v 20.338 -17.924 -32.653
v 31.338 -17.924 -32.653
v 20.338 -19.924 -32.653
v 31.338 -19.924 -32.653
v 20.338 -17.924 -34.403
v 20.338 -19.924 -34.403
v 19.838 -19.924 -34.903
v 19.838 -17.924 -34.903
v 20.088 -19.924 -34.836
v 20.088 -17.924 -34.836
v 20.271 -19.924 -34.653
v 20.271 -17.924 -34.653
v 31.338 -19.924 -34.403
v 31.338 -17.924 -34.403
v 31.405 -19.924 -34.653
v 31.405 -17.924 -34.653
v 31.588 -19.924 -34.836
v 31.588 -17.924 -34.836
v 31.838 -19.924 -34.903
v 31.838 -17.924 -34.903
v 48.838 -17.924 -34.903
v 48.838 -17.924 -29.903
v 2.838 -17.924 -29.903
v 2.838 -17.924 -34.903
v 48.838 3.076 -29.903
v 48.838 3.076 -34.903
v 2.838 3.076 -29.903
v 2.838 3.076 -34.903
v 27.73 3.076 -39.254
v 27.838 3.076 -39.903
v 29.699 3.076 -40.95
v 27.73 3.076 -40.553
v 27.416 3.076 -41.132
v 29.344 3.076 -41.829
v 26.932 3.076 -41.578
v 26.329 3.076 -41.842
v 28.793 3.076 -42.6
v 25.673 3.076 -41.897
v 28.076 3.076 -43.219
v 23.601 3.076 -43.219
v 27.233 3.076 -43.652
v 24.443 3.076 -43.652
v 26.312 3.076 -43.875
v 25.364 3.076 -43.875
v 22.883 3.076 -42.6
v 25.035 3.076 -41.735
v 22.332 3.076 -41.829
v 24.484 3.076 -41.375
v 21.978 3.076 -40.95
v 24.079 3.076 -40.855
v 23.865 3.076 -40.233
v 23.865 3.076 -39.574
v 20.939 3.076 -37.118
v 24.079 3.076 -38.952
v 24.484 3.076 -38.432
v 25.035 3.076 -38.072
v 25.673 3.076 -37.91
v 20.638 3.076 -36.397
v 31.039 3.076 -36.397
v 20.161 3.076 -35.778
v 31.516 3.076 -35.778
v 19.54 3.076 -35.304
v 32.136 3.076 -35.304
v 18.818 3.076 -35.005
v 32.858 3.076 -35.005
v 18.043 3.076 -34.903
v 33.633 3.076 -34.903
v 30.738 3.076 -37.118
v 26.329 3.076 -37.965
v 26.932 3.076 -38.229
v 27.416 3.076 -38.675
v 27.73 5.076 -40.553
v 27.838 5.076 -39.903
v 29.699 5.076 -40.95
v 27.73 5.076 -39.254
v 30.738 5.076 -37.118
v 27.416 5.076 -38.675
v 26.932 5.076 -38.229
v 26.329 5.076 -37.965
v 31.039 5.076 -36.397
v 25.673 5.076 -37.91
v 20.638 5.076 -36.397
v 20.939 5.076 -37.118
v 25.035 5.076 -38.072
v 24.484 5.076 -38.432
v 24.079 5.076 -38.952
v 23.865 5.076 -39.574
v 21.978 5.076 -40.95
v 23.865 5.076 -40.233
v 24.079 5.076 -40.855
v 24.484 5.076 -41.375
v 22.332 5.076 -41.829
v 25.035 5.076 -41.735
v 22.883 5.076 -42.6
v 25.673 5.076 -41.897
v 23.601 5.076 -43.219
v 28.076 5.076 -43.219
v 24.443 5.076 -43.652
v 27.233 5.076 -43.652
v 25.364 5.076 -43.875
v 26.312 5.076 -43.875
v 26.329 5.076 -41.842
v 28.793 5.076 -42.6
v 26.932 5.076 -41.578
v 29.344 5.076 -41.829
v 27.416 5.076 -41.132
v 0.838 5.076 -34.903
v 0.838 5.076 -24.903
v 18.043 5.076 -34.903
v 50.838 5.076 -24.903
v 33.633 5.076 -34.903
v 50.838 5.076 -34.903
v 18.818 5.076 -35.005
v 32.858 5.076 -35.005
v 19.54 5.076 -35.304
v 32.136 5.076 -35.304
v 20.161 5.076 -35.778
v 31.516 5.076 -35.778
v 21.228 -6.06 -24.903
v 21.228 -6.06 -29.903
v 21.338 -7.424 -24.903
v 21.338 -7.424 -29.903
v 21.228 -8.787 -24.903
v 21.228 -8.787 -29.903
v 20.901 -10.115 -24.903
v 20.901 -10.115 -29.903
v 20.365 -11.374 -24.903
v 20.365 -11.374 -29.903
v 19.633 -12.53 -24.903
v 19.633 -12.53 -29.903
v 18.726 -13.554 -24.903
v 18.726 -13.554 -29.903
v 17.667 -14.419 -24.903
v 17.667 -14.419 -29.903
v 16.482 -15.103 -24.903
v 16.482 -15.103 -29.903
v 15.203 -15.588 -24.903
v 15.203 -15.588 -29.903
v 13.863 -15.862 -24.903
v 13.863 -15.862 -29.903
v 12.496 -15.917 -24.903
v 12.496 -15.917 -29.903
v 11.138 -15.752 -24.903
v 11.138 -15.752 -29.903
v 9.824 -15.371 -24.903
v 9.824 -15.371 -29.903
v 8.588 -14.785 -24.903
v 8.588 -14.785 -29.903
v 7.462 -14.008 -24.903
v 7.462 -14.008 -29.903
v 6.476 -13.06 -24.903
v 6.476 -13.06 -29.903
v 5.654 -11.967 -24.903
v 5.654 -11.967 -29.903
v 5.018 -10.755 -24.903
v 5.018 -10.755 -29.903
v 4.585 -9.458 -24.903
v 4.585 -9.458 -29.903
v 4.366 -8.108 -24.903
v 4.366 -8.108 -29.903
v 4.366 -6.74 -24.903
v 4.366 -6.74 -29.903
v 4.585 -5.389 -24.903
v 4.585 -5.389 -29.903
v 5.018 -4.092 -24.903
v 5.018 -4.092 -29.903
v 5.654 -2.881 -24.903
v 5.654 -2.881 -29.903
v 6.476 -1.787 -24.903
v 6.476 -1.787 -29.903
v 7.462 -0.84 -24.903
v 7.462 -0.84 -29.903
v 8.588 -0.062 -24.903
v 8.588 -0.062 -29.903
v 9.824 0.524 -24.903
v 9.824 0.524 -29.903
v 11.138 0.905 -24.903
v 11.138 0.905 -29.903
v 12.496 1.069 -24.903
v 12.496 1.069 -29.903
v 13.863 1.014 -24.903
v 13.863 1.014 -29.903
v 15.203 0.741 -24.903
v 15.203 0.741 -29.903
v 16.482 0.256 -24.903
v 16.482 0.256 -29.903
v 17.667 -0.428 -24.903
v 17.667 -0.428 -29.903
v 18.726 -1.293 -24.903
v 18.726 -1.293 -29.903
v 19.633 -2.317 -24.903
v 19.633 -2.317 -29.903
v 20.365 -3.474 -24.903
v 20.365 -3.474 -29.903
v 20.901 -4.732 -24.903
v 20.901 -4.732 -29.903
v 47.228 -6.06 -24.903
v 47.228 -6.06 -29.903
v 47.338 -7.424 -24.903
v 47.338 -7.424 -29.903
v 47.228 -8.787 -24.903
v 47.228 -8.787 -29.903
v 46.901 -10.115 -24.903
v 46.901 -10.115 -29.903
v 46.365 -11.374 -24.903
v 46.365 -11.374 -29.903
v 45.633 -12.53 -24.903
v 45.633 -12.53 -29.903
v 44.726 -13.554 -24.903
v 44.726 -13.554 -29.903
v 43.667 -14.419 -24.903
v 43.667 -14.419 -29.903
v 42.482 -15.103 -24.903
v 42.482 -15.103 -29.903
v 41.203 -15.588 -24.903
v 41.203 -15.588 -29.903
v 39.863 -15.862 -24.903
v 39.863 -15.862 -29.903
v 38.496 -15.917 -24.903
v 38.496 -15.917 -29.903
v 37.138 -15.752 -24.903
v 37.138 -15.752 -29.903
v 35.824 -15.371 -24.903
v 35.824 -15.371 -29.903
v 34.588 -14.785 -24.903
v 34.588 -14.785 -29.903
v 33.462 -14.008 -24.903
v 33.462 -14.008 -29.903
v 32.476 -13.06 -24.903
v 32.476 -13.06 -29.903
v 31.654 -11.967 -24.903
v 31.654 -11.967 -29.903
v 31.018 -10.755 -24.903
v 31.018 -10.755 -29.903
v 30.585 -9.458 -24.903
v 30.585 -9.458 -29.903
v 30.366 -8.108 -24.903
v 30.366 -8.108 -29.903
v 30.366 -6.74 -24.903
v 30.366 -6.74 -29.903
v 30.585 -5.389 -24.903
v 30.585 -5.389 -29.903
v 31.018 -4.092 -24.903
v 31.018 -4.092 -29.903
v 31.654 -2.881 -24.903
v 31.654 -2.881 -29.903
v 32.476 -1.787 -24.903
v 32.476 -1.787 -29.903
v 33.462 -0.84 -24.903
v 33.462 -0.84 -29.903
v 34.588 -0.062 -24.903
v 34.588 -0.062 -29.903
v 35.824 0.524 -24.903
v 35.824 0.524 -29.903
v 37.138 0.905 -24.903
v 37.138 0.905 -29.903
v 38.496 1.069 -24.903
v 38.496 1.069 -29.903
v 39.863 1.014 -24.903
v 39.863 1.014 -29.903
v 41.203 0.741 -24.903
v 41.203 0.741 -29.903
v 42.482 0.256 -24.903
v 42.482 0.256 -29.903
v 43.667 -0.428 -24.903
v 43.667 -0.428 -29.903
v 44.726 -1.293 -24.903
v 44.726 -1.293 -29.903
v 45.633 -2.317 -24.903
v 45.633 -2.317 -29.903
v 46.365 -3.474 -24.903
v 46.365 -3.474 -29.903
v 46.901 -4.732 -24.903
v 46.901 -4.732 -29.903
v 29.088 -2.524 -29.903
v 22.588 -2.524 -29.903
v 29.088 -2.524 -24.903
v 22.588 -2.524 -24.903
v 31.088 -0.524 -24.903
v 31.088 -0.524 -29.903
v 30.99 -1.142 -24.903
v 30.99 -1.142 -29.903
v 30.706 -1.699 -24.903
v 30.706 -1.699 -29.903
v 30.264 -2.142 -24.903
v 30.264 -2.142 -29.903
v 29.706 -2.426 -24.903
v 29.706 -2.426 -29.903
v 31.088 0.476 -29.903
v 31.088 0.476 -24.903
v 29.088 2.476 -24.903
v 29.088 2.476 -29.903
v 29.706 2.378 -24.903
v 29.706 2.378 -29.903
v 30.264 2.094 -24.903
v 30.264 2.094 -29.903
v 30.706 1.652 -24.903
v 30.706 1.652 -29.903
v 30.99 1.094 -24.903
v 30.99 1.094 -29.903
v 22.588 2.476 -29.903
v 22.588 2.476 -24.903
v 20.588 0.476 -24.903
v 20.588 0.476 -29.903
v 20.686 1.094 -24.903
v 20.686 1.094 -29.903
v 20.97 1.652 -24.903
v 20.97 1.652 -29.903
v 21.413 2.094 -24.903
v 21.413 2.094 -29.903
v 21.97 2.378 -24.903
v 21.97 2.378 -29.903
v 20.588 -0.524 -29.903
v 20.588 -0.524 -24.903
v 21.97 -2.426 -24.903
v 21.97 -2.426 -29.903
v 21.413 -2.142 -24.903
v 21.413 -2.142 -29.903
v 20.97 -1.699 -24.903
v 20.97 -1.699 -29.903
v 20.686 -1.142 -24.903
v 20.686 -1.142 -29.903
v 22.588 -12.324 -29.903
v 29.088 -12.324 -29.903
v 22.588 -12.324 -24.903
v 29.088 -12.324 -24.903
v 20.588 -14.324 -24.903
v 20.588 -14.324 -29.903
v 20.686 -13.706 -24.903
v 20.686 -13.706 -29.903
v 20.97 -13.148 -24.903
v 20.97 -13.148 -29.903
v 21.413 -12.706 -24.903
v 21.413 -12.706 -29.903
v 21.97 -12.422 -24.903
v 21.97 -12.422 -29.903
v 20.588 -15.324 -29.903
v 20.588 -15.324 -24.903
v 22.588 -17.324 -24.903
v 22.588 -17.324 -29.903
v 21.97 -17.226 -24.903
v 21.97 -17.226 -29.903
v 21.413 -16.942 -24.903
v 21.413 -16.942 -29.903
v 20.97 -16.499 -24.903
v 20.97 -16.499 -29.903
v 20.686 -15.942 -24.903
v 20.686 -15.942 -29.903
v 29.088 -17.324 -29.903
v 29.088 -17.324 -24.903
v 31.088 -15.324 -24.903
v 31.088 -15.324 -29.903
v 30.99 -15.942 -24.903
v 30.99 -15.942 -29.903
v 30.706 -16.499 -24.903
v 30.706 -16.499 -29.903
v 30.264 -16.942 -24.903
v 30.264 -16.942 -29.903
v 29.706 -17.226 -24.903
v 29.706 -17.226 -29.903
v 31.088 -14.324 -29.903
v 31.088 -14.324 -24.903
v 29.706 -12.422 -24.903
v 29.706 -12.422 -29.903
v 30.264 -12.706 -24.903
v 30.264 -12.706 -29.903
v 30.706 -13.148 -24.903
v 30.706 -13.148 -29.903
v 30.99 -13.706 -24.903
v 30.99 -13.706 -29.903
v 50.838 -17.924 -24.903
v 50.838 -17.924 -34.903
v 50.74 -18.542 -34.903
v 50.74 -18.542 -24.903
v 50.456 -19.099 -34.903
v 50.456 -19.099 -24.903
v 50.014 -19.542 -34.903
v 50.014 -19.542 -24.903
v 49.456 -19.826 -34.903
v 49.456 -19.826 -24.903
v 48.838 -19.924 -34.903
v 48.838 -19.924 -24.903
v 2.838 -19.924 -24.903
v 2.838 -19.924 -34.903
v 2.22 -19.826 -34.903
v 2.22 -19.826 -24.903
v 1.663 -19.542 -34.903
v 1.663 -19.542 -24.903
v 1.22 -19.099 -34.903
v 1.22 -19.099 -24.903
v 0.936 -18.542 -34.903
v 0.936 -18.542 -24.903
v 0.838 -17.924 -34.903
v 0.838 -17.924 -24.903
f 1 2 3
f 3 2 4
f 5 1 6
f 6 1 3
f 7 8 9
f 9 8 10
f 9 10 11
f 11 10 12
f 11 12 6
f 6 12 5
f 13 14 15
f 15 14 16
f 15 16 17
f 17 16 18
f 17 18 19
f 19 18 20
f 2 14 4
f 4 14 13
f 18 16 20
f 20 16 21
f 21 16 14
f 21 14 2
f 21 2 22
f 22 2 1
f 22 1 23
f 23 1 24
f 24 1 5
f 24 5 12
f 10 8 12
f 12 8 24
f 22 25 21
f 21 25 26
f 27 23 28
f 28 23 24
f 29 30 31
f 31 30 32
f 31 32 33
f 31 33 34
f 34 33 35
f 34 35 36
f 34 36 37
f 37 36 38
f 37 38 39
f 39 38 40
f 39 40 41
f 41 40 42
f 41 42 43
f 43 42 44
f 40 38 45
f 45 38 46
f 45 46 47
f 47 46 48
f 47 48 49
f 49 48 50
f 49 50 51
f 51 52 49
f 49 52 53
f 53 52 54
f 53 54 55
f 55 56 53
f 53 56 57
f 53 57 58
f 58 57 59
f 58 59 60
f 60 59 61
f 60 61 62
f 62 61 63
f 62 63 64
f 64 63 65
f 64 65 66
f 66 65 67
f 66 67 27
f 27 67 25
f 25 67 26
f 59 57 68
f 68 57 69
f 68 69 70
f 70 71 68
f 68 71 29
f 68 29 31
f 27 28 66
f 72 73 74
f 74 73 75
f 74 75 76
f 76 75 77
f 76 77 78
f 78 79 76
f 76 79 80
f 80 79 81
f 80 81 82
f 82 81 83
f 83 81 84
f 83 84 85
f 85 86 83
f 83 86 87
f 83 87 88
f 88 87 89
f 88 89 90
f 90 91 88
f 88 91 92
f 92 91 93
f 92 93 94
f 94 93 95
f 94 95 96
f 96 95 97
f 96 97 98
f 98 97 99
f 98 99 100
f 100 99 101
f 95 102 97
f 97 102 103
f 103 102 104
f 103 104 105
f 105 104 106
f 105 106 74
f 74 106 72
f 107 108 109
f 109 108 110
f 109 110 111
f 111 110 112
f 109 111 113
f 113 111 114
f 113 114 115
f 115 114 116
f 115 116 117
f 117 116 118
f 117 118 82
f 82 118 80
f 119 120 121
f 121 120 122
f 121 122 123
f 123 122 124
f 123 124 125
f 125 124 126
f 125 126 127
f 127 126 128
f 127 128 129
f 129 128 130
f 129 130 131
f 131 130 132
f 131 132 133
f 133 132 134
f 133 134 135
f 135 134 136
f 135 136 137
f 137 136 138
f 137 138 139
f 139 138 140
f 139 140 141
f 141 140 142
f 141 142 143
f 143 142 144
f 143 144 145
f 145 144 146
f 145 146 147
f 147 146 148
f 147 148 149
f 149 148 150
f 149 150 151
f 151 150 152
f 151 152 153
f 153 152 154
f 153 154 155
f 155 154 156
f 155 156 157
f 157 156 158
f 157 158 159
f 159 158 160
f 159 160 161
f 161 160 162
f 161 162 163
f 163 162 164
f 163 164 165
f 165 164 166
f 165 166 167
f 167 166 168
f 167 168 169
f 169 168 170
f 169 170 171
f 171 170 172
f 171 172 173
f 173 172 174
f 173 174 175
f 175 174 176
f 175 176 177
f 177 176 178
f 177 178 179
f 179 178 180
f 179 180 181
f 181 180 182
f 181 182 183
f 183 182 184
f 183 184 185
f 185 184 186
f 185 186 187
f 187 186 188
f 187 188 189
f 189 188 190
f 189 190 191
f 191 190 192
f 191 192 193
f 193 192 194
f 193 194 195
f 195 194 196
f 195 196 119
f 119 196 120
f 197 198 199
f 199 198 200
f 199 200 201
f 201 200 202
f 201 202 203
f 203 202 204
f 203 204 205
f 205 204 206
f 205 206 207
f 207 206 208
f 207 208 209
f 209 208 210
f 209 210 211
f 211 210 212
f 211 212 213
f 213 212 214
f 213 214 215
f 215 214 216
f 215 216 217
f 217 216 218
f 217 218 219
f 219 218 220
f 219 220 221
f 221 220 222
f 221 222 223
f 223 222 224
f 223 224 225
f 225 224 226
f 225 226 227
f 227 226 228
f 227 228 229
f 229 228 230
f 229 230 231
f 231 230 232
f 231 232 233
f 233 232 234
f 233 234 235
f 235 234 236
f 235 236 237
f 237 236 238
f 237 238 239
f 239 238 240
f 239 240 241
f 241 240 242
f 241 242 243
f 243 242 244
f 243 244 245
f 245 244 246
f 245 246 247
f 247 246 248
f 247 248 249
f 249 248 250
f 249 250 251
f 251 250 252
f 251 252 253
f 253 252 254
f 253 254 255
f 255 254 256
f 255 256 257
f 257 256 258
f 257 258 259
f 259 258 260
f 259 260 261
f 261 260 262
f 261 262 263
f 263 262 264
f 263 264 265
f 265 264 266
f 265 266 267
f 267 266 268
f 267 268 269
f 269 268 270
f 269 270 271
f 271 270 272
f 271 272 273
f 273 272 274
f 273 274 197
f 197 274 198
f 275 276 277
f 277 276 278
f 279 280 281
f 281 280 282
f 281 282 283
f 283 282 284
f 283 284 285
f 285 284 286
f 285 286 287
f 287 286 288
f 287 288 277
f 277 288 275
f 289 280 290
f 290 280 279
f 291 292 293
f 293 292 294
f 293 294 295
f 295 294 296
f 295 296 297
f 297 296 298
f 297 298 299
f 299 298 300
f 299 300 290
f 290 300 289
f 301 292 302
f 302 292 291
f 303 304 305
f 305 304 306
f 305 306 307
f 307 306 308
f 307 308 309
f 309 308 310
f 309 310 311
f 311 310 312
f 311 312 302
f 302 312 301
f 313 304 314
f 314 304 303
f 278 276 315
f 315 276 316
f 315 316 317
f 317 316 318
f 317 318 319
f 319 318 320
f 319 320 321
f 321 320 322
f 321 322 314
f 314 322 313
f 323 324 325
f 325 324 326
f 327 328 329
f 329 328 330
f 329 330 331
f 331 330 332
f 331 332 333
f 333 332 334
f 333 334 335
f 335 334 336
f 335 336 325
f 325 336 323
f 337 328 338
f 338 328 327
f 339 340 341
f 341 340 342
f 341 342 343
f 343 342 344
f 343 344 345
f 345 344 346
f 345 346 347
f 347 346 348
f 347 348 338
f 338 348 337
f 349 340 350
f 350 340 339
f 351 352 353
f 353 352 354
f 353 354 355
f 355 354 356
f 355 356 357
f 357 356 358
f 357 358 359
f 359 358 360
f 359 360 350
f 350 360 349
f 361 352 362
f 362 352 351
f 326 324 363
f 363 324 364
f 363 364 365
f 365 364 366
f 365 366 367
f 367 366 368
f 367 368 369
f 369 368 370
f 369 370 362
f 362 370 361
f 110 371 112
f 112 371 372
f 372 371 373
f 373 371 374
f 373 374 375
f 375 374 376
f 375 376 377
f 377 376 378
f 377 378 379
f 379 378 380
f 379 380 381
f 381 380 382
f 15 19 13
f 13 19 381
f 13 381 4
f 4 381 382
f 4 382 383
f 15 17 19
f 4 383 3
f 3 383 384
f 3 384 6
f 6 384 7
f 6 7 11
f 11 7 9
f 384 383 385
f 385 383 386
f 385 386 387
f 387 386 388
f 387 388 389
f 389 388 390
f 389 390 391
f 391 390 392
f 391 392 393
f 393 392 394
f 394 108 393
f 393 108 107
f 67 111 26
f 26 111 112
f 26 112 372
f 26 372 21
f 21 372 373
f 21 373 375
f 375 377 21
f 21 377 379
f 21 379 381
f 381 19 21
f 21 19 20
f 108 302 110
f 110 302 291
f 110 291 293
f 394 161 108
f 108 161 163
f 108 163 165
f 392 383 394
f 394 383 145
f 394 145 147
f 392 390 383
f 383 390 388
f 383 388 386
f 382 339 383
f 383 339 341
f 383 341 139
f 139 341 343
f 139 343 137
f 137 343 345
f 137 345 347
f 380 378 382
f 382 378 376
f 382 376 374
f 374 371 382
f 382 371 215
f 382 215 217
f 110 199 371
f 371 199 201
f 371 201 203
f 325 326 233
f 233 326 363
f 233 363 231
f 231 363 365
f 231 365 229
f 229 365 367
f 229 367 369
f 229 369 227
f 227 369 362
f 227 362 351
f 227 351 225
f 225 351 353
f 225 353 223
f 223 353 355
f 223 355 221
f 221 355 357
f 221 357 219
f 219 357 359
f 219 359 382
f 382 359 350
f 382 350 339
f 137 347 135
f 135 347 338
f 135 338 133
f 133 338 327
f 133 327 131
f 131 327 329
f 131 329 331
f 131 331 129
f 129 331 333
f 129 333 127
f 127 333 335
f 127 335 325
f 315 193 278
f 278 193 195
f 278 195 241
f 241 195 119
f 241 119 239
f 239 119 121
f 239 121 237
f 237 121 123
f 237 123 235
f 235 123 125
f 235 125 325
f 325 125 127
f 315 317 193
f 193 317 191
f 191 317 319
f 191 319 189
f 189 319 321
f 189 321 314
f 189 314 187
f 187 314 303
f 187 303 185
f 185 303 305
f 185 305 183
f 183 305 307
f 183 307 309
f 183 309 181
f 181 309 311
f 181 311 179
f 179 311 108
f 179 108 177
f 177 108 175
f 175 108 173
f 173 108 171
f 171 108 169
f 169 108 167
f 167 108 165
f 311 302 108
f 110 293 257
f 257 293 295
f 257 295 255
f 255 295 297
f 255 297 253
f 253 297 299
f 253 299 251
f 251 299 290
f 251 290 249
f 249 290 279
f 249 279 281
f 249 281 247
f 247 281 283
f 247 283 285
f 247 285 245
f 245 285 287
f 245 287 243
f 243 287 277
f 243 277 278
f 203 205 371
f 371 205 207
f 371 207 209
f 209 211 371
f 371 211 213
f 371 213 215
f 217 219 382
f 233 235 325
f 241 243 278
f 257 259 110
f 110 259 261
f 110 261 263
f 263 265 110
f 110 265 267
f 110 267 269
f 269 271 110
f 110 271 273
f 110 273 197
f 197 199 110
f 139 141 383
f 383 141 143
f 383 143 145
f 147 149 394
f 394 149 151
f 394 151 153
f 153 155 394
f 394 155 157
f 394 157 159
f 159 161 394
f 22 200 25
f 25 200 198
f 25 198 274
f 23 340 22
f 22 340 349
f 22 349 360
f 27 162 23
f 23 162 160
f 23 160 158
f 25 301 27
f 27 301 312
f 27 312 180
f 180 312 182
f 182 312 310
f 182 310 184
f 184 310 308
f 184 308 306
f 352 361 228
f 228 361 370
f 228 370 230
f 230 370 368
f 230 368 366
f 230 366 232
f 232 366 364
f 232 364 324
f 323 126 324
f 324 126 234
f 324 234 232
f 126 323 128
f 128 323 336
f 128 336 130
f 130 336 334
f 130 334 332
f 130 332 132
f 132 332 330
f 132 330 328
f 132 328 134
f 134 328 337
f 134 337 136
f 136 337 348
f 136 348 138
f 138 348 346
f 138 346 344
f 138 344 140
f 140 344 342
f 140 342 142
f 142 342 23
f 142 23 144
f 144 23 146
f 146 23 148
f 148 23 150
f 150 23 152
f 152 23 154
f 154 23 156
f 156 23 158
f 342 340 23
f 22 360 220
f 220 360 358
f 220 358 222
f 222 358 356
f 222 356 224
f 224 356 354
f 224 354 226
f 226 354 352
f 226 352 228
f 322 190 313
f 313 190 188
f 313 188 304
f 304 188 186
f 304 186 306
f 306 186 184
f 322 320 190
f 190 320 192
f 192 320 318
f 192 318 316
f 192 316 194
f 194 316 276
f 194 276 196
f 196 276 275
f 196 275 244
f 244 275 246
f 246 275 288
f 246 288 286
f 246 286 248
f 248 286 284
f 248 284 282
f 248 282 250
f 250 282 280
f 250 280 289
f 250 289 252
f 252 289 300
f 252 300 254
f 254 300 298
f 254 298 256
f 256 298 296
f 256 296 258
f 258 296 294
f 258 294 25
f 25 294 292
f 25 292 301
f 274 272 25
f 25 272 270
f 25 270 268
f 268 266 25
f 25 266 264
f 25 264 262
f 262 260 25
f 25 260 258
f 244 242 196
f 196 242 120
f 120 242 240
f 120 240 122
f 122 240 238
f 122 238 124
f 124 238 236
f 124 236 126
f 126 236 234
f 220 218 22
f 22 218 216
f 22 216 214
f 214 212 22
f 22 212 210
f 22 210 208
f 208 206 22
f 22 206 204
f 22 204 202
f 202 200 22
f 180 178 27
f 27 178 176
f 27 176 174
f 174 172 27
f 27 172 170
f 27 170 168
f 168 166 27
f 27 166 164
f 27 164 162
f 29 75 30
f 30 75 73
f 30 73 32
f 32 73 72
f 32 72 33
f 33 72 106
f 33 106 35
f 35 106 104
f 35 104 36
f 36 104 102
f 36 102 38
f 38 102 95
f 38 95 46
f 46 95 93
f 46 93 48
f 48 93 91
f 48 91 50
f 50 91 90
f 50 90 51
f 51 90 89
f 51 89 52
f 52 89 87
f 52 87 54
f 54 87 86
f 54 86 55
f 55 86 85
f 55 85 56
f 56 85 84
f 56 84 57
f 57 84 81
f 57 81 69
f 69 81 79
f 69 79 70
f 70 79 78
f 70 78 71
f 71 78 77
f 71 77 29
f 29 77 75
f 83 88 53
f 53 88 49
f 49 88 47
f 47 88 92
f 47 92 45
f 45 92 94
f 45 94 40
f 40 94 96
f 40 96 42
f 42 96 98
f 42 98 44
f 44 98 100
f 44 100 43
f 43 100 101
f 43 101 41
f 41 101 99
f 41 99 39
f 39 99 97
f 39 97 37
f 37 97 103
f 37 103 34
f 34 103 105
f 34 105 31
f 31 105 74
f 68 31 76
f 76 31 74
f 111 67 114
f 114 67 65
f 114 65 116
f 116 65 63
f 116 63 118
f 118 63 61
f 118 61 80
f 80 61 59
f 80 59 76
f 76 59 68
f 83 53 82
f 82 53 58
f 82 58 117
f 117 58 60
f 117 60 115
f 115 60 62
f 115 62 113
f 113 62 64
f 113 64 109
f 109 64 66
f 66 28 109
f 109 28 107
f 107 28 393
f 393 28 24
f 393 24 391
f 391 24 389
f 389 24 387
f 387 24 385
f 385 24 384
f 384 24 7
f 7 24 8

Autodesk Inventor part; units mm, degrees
ref_plane "YZ Plane" through (0, 0, 0) normal (1, 0, 0) x (0, 1, 0)
ref_plane "Plano de trabalho1" through (25.8382, -7.4236, -29.9034) normal (0, 0, 1) x (1, 0, 0)
sketch "Esboço1" plane through (25.8382, -7.4236, -29.9034) normal (0, 0, 1) x (1, 0, 0)
  line L0 (-23, 10.5) -> (23, 10.5)
  line L1 (23, 10.5) -> (23, -10.5)
  line L2 (23, -10.5) -> (-23, -10.5)
  line L3 (-23, -10.5) -> (-23, 10.5)
  line L4 (23, 12.5) -> (-23, 12.5)
  line L5 (-25, 10.5) -> (-25, -10.5)
  line L6 (-23, -12.5) -> (23, -12.5)
  line L7 (25, -10.5) -> (25, 10.5)
  arc A0 (23, -12.5) -> (25, -10.5) centre (23, -10.5) ccw
  arc A1 (-25, -10.5) -> (-23, -12.5) centre (-23, -10.5) ccw
  circle A2 centre (-13, 0) radius 8.5
  circle A3 centre (13, 0) radius 8.5
  line L8 (-23, 10.5) -> (23, -10.5) construction
  line L9 (23, 10.5) -> (-23, -10.5) construction
  line L10 (-3.25, 4.9) -> (3.25, 4.9)
  line L11 (5.25, 6.9) -> (5.25, 7.9)
  line L12 (3.25, 9.9) -> (-3.25, 9.9)
  line L13 (-5.25, 7.9) -> (-5.25, 6.9)
  line L14 (-5.25, 4.9) -> (5.25, 9.9) construction
  line L15 (5.25, 4.9) -> (-5.25, 9.9) construction
  arc A4 (-3.25, 9.9) -> (-5.25, 7.9) centre (-3.25, 7.9) ccw
  arc A5 (-5.25, 6.9) -> (-3.25, 4.9) centre (-3.25, 6.9) ccw
  arc A6 (3.25, 4.9) -> (5.25, 6.9) centre (3.25, 6.9) ccw
  arc A7 (5.25, 7.9) -> (3.25, 9.9) centre (3.25, 7.9) ccw
  line L16 (0, 0) -> (0, -7.4)
  line L17 (-3.25, -9.9) -> (3.25, -9.9)
  line L18 (5.25, -7.9) -> (5.25, -6.9)
  line L19 (3.25, -4.9) -> (-3.25, -4.9)
  line L20 (-5.25, -6.9) -> (-5.25, -7.9)
  line L21 (-5.25, -9.9) -> (5.25, -4.9) construction
  line L22 (5.25, -9.9) -> (-5.25, -4.9) construction
  arc A8 (-3.25, -4.9) -> (-5.25, -6.9) centre (-3.25, -6.9) ccw
  arc A9 (-5.25, -7.9) -> (-3.25, -9.9) centre (-3.25, -7.9) ccw
  arc A10 (3.25, -9.9) -> (5.25, -7.9) centre (3.25, -7.9) ccw
  arc A11 (5.25, -6.9) -> (3.25, -4.9) centre (3.25, -6.9) ccw
  line L23 (-23, 12.5) -> (-25, 12.5)
  line L24 (-25, 12.5) -> (-25, 10.5)
  line L25 (23, 12.5) -> (25, 12.5)
  line L26 (25, 12.5) -> (25, 10.5)
  point P0 (-25.8382, 7.4236)
  dimension "d0" = 2
  dimension "d4" = 46
  dimension "d5" = 21
  dimension "d7" = 17
  dimension "d9" = 17
  dimension "d16" = 7.4
extrude "Extrusão1" add sketch "Esboço1" along normal blind 5 contours L0 L1 L2 L3 | L25 L26 L7 A0 L6 A1 L5 L24 L23 L4
extrude "Extrusão2" add sketch "Esboço1" against normal blind 5 contours L25 L26 L7 A0 L6 A1 L5 L24 L23 L4
sketch "Esboço2" plane through (2.8382, -19.9236, -24.9034) normal (0, -1, 0) x (1, 0, 0)
  line L0 (28.5, -9.5) -> (28.5, -7.75)
  line L1 (28.5, -7.75) -> (17.5, -7.75)
  line L2 (17.5, -7.75) -> (17.5, -9.5)
  line L3 (46, -10) -> (0, -10) projected
  line L4 (17.5, -10) -> (28.5, -10)
  line L5 (23, -12) -> (31, -12)
  line L6 (23, -12) -> (15, -12)
  line L7 (15, -12) -> (15, -10)
  line L8 (17, -10) -> (15, -10)
  line L9 (31, -12) -> (31, -10)
  line L10 (29, -10) -> (31, -10)
  arc A0 (28.5, -9.5) -> (29, -10) centre (29, -9.5) ccw
  arc A1 (17, -10) -> (17.5, -9.5) centre (17, -9.5) ccw
  point P0 (-2.8382, 24.9034)
  point P1 (23, -10)
  point P2 (17, -10)
  dimension "d24" = 8
  dimension "d25" = 8
  dimension "d26" = 0.5
  dimension "d27" = 0.5
extrude "Extrusão3" cut sketch "Esboço2" against normal up to surface (2 mm away) contours A0 L3 A1 L2 L1 L0
ref_plane "Plano de trabalho2" through (25.638, 5.0764, -94.896) normal (0, -1, 0) x (0, 0, 1)
sketch "Esboço5" plane through (0.8382, 5.0764, -24.9034) normal (0, 1, 0) x (1, 0, 0)
  line L0 (48, 10) -> (2, 10) projected
  circle A0 centre (25, 15) radius 2
  arc A1 (28.8606, 16.0467) -> (21.1394, 16.0467) centre (25, 15) ccw
  line L1 (19.5, 10) -> (21.1394, 16.0467)
  line L2 (30.5, 10) -> (28.8606, 16.0467)
  line L3 (30.5, 10) -> (19.5, 10)
  line L4 (0, 10) -> (50, 10) projected
  point P0 (-0.8382, -24.9034)
  dimension "d56" = 4
  dimension "d57" = 2
extrude "Extrusão5" add sketch "Esboço5" against normal blind 2
fillet "Arredondamento3" radius 3 2 edges at (20.3382, 4.0764, -34.9034) (31.3382, 4.0764, -34.9034)
properties part number "suporte ultrasom"
